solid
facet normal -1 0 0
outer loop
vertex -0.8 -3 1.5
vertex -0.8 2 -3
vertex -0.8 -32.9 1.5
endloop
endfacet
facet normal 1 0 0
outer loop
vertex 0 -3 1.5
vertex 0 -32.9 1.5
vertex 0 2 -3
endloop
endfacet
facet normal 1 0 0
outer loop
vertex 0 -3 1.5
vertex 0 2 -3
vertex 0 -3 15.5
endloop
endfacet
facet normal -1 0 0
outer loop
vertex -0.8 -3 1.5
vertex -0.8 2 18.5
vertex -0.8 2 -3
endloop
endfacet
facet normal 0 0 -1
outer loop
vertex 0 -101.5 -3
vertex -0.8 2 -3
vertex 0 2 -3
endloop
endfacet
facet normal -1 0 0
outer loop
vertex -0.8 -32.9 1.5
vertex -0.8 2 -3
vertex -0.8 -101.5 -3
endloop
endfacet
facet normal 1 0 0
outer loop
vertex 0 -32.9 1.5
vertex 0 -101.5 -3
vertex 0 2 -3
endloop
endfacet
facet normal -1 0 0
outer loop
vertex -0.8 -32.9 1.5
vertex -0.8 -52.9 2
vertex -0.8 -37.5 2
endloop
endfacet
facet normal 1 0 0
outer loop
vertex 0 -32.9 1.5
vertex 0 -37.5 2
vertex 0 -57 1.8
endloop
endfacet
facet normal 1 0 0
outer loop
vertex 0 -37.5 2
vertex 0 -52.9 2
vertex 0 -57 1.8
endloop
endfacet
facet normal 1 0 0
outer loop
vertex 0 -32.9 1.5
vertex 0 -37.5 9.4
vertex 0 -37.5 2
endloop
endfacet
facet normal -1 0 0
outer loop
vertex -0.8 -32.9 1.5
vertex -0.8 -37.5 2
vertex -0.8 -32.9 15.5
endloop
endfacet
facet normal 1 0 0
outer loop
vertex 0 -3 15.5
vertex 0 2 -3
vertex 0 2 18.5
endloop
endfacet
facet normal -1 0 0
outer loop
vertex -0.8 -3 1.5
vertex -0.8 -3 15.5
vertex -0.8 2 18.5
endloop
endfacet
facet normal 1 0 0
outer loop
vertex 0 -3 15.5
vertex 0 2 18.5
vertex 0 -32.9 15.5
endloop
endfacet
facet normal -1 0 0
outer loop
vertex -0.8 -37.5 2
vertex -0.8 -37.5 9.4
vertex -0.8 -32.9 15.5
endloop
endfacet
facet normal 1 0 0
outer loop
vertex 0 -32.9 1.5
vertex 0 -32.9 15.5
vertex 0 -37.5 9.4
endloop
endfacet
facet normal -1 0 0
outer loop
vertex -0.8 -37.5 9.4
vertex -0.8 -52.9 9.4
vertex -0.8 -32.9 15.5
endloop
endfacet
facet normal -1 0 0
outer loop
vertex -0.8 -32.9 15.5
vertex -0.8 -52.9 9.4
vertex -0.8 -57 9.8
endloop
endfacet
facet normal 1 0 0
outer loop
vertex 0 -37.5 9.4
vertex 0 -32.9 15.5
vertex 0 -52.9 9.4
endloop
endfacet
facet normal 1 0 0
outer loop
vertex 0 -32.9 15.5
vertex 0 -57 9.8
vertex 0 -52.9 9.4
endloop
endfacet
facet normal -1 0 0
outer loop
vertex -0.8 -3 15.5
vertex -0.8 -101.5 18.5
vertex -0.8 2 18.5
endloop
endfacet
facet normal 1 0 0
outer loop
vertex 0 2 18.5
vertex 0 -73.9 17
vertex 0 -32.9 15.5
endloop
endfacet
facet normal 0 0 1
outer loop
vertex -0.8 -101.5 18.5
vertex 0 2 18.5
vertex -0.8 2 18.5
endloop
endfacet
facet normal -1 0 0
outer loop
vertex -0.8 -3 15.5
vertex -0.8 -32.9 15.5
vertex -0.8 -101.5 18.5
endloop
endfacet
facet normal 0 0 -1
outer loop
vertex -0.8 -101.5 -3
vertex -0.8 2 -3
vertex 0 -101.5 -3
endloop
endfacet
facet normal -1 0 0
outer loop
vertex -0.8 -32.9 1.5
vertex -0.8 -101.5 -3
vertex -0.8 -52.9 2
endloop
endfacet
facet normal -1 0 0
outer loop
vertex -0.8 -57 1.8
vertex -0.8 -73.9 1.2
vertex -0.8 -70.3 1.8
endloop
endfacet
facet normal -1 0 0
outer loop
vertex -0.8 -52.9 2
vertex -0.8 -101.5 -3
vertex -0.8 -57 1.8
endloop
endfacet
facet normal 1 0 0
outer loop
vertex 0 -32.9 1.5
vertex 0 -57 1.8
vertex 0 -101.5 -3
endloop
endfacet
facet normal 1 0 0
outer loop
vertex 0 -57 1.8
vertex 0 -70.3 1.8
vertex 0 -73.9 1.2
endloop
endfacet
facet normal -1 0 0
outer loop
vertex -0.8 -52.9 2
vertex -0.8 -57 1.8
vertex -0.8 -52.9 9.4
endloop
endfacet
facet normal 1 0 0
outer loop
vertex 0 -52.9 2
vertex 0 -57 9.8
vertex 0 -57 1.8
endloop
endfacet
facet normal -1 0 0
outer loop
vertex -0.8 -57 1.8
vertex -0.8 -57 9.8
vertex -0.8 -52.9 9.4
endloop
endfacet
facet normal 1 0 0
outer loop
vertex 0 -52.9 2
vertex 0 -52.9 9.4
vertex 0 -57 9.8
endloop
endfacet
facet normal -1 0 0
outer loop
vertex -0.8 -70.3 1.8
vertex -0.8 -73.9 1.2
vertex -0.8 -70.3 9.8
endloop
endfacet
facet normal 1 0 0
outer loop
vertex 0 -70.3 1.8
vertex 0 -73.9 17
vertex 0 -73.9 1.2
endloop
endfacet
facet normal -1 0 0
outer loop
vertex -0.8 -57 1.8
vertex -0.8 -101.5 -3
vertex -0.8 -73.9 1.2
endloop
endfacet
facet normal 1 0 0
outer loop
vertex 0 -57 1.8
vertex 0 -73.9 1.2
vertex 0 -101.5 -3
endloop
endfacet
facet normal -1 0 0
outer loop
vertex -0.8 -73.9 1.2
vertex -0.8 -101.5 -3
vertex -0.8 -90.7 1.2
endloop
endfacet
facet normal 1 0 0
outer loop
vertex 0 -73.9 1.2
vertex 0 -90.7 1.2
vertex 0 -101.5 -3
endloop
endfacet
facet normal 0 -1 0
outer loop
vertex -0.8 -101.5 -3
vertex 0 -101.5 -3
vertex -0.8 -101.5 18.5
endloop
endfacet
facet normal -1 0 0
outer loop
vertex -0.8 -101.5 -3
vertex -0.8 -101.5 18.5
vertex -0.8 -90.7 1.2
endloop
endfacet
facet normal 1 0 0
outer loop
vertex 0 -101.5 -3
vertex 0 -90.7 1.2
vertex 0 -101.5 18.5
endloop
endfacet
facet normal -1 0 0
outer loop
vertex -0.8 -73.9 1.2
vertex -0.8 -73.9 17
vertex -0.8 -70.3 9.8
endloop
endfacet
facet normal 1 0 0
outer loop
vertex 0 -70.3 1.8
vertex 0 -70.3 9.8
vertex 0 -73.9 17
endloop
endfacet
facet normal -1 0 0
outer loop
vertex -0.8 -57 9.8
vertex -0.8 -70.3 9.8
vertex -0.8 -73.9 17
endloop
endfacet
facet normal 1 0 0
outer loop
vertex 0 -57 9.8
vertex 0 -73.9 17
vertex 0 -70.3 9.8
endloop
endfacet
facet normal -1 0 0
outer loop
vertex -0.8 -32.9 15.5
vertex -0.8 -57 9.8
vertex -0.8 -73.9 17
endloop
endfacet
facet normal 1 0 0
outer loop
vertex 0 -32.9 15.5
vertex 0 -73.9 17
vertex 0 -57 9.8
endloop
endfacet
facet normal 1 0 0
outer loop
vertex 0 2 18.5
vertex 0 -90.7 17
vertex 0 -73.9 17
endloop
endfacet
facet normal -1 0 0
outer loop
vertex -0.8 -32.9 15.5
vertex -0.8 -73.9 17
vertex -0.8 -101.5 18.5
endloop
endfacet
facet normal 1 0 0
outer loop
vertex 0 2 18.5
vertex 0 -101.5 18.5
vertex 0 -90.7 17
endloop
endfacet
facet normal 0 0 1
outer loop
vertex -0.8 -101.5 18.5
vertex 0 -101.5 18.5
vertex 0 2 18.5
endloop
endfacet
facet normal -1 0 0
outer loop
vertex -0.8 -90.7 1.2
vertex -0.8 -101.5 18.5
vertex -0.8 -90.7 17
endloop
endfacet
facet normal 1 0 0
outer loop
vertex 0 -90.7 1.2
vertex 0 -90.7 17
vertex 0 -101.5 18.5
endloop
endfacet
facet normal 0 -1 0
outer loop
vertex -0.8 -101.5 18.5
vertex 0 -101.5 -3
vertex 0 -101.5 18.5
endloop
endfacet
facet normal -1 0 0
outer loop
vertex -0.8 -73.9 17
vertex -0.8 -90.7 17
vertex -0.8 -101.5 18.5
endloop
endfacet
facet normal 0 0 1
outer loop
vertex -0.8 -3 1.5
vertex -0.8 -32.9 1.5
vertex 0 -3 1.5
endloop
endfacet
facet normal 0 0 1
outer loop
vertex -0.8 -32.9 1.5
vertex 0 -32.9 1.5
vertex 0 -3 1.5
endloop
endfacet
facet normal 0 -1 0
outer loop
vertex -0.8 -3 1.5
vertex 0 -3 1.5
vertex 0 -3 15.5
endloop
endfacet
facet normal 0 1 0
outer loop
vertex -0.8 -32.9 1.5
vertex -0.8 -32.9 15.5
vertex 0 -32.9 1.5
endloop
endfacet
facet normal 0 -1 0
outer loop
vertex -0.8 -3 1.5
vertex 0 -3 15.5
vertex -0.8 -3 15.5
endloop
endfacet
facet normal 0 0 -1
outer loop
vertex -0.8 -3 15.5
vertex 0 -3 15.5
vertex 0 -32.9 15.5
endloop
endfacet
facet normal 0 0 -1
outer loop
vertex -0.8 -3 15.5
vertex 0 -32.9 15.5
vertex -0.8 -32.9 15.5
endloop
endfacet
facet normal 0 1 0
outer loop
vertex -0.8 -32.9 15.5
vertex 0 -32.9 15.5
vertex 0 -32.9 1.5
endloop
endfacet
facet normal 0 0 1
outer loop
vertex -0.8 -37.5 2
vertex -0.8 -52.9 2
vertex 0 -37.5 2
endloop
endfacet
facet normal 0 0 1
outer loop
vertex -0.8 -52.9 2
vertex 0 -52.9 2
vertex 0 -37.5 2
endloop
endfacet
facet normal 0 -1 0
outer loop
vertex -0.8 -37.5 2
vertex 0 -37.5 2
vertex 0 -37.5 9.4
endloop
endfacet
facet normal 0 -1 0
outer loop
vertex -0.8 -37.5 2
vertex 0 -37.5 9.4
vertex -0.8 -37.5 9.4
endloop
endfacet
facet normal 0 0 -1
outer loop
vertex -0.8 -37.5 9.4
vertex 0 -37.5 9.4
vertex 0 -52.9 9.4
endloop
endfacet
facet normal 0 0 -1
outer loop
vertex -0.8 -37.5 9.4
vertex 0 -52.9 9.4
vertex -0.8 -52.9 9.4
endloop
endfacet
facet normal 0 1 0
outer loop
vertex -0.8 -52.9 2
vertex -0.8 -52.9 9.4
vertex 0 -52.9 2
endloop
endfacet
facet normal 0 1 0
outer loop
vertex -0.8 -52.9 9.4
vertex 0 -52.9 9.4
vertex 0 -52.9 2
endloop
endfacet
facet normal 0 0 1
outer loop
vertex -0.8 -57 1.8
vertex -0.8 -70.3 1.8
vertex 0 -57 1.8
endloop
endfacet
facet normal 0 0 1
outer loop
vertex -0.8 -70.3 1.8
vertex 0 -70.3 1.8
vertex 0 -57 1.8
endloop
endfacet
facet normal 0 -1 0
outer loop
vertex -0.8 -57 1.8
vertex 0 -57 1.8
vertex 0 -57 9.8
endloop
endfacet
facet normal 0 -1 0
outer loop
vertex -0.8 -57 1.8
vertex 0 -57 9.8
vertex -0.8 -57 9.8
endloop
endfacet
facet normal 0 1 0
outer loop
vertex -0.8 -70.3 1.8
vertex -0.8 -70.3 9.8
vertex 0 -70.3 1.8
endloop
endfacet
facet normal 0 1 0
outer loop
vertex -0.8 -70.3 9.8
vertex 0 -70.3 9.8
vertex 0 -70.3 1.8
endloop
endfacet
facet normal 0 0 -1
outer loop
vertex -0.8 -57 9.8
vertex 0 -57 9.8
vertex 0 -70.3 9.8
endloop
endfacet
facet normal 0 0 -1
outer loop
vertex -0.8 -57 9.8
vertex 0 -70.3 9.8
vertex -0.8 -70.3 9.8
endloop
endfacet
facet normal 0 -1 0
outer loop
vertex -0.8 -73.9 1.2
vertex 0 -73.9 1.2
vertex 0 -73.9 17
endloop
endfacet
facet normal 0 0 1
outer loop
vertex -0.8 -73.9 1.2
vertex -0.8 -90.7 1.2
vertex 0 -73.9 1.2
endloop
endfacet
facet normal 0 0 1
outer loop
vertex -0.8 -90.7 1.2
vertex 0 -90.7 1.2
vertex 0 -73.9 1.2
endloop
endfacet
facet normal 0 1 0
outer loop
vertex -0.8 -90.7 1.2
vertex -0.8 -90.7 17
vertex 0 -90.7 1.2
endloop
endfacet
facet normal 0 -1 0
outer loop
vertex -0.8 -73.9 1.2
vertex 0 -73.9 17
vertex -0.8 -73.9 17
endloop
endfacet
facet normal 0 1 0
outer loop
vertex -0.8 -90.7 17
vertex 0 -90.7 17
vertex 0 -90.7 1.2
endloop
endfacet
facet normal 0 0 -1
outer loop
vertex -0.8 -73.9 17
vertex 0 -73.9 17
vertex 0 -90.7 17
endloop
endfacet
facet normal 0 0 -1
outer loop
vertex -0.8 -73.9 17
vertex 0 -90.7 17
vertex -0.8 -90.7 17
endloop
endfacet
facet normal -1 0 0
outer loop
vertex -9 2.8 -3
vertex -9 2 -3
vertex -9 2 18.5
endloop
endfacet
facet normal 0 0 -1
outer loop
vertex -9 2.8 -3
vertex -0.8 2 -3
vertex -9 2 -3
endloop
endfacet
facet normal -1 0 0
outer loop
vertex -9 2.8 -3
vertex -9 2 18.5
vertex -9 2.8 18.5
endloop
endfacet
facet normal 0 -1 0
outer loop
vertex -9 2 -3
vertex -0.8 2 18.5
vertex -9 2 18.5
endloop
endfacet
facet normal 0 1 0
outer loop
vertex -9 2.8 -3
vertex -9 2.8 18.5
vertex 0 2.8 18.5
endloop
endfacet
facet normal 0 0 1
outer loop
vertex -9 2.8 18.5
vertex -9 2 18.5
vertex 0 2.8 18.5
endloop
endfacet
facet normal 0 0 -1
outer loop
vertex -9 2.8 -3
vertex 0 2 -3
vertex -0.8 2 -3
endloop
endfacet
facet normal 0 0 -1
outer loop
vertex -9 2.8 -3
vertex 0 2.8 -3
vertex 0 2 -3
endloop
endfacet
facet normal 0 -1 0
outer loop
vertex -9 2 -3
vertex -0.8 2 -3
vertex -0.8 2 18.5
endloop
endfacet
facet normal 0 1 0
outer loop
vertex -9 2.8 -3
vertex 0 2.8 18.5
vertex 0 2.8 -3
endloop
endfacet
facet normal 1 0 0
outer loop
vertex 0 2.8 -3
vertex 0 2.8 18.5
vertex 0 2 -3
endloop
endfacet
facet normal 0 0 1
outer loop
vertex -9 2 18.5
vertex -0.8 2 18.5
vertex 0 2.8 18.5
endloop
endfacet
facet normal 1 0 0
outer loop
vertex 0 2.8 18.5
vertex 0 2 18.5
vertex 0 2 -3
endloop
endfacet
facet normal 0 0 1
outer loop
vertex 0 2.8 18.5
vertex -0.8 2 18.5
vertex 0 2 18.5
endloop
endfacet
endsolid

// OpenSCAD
// Preliminary full-height PCI bracket for KiCad fit visualization only.
// Connector openings follow the current Rev A courtyard stack, not released
// manufacturer panel-cutout drawings. Units are millimetres.

plate_thickness = 0.8;
plate_length = 103.5;
plate_height = 21.5;

module opening(y0, width, z0, height) {
    translate([-1.5, y0, z0]) cube([3.0, width, height]);
}

// KiCad's STEP importer reverses the model Y axis relative to OpenSCAD's STL
// convention. Mirror here so the bracket openings follow increasing board Y.
mirror([0, 1, 0]) union() {
    difference() {
        translate([-0.8, -2.0, -3.0])
            cube([plate_thickness, plate_length, plate_height]);

        // J2 HD15: generous preview opening around the connector shell.
        opening(3.0, 29.9, 1.5, 14.0);

        // J4 HDMI-A.
        opening(37.5, 15.4, 2.0, 7.4);

        // J5 USB-A.
        opening(57.0, 13.3, 1.8, 8.0);

        // J6 RJ45.
        opening(73.9, 16.8, 1.2, 15.8);
    }

    // Simplified 90-degree chassis retention tab at the top of the bracket.
    translate([-9.0, -2.8, -3.0]) cube([9.0, 0.8, plate_height]);
}
